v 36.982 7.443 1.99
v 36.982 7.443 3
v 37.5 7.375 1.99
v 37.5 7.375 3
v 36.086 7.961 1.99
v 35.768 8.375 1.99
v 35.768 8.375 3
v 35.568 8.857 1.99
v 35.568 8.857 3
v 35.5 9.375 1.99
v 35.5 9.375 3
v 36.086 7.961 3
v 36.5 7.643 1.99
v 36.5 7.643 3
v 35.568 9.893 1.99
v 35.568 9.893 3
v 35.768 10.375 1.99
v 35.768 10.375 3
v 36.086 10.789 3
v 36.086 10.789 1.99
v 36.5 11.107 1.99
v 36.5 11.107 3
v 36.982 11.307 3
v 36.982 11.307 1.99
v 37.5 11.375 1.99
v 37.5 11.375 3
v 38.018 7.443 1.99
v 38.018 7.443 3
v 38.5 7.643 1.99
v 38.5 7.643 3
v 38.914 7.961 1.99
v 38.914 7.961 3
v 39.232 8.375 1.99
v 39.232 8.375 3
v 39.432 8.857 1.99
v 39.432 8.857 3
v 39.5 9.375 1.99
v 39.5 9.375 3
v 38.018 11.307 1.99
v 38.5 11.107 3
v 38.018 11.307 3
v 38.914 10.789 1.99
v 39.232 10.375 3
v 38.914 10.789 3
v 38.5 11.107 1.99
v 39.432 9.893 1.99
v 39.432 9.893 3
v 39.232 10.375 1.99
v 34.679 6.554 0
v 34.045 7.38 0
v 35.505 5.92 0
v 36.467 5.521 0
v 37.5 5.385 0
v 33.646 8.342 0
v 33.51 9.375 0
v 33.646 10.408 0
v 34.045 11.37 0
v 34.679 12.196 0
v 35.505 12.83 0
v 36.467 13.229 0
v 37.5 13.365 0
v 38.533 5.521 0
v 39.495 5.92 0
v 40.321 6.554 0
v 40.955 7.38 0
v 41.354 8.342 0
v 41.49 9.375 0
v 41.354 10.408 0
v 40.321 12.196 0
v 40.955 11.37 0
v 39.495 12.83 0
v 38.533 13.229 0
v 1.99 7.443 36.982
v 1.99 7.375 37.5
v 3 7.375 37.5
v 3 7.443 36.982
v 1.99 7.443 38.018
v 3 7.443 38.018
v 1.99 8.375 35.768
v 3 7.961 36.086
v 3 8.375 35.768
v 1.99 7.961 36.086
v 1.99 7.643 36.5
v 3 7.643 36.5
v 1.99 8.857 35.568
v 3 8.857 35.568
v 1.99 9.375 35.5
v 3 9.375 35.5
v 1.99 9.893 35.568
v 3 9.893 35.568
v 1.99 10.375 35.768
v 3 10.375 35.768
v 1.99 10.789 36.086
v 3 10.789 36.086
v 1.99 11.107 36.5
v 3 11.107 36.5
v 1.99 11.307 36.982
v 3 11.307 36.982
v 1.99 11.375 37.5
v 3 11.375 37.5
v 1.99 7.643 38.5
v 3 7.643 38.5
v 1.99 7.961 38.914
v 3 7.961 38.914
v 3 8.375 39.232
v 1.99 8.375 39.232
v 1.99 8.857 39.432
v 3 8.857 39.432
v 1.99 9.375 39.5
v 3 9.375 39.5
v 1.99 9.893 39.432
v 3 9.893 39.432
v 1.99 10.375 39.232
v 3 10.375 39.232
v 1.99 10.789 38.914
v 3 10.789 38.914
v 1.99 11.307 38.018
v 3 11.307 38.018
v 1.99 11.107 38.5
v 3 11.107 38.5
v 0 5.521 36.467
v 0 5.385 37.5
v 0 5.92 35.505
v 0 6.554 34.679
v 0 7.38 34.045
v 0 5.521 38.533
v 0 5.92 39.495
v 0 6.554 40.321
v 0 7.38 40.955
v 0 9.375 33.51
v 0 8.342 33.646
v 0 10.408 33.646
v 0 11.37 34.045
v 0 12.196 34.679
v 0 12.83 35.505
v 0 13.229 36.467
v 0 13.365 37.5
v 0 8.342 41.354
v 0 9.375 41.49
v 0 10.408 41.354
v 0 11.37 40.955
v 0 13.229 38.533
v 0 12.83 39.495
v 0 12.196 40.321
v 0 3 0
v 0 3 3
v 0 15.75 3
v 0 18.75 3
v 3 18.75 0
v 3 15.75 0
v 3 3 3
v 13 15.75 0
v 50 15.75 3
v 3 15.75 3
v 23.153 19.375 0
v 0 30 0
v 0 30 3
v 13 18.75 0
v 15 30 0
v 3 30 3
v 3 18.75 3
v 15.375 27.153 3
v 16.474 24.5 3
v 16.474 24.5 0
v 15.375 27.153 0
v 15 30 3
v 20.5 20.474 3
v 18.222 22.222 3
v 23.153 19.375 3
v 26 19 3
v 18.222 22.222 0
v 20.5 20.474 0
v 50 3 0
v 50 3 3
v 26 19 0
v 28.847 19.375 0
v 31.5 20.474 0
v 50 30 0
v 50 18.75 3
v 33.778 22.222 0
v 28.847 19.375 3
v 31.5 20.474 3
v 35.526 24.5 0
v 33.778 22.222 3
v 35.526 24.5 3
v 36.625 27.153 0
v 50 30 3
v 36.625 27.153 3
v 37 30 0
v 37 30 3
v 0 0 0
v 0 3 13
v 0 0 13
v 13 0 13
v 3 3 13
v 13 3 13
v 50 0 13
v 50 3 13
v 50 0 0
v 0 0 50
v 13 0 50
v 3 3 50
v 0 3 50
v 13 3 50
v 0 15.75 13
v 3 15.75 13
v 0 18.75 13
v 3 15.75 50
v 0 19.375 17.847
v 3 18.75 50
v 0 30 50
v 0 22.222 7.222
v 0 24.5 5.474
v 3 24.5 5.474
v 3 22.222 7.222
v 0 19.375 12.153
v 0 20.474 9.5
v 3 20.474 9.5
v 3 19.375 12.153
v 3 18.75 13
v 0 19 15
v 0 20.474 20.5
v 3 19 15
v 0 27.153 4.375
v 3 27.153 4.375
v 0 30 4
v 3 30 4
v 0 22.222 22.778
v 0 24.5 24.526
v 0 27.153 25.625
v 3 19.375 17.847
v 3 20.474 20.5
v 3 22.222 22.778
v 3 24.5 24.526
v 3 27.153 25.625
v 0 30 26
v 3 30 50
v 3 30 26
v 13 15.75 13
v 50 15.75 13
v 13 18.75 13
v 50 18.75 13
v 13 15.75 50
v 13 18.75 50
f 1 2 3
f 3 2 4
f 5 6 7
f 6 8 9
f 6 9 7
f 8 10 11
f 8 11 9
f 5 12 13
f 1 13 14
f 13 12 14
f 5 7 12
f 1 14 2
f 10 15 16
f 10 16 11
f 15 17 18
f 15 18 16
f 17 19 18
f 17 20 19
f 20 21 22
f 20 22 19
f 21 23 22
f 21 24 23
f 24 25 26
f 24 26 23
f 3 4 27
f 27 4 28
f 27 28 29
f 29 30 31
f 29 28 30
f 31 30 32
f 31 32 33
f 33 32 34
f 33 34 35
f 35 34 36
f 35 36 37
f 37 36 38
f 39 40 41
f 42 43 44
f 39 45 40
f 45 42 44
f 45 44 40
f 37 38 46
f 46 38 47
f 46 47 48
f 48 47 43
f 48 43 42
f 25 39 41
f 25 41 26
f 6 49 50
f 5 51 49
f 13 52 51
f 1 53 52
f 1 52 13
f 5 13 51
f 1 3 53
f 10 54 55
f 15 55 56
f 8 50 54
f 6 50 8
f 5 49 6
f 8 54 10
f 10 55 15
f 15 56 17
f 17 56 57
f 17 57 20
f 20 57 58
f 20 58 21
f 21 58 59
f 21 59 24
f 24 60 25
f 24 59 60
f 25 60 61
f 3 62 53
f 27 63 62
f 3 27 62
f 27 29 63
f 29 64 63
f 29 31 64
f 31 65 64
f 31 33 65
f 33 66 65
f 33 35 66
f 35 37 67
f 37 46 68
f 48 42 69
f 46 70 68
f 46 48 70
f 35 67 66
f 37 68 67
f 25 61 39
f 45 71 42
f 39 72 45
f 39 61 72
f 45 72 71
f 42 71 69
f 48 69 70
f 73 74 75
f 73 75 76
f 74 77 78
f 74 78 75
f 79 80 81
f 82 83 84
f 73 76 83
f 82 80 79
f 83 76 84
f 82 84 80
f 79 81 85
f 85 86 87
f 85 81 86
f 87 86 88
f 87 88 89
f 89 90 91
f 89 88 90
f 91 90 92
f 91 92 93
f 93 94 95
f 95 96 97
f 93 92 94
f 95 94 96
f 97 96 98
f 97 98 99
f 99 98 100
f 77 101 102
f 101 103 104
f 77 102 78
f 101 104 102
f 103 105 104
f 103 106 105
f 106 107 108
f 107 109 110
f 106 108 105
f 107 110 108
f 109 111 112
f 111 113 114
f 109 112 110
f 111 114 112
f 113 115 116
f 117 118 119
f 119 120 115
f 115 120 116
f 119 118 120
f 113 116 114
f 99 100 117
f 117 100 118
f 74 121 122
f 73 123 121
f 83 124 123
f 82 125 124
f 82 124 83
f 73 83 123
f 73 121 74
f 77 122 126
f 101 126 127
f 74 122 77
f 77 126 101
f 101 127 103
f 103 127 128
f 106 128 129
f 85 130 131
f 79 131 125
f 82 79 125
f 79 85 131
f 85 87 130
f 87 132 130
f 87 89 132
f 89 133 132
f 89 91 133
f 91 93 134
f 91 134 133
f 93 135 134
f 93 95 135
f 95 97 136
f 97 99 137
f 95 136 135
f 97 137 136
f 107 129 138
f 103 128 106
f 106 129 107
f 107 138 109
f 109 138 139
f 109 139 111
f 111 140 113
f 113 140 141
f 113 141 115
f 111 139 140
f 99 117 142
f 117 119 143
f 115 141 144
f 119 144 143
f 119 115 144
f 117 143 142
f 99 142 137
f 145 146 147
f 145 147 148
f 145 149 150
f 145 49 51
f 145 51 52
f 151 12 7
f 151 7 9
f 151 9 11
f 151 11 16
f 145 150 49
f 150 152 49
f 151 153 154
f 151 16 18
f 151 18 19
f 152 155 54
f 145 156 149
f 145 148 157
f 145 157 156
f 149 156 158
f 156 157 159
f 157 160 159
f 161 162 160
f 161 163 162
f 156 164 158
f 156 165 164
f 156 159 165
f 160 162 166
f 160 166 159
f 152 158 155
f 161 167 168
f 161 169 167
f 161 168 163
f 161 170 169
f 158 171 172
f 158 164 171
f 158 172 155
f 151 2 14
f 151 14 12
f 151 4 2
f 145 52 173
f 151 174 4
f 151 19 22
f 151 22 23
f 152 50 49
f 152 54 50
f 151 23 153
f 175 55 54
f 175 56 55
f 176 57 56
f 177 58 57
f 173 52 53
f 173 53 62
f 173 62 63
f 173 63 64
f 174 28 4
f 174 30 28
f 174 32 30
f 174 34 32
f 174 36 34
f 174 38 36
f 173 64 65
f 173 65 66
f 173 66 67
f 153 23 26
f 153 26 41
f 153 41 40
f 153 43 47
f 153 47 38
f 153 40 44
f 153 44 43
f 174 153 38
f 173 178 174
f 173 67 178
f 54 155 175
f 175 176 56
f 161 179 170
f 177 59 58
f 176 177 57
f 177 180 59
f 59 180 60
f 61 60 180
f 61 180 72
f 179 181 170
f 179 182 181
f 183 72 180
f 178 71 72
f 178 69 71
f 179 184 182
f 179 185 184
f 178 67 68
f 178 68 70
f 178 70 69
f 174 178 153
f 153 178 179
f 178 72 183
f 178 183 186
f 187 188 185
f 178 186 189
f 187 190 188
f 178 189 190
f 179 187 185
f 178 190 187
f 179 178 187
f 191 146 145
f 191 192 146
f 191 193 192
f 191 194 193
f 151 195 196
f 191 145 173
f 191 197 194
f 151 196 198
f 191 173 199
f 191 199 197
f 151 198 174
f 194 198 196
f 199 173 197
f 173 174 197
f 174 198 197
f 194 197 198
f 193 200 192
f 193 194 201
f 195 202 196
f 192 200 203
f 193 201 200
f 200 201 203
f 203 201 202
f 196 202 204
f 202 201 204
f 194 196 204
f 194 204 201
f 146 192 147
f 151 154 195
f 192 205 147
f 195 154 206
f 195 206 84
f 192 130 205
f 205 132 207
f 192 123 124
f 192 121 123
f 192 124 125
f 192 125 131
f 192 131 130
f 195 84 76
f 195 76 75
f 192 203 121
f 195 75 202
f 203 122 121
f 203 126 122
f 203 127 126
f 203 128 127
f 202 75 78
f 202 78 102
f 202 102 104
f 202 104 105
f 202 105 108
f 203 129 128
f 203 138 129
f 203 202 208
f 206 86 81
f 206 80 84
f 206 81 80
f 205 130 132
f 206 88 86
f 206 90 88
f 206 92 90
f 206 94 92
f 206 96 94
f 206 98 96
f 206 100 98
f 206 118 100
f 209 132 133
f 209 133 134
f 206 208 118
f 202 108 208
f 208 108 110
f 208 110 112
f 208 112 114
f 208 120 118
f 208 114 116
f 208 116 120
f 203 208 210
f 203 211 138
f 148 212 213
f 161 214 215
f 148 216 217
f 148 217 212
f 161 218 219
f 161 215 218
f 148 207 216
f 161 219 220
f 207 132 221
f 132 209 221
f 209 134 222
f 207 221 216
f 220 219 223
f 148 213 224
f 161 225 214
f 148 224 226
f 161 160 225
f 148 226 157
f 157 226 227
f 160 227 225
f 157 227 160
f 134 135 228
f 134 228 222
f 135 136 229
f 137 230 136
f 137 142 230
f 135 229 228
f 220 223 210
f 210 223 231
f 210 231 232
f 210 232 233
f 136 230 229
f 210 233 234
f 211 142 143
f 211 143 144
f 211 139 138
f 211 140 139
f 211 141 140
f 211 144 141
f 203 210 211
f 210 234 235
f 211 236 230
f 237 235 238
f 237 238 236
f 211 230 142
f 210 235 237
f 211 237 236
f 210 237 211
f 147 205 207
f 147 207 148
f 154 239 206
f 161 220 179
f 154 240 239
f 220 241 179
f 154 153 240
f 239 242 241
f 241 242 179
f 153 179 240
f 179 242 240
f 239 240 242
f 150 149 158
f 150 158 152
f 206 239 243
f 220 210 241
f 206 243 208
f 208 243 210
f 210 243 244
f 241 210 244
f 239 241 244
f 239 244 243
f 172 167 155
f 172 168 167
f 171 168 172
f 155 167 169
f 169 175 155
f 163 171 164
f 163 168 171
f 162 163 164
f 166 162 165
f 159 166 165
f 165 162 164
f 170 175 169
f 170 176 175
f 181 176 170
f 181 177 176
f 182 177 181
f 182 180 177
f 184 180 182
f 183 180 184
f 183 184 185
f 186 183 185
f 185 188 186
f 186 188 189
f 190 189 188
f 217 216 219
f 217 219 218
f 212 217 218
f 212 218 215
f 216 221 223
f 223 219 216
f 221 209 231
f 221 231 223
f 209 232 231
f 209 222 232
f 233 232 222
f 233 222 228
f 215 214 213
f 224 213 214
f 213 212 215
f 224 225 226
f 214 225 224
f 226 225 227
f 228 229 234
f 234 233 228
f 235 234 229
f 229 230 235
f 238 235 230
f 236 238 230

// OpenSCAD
$fn=24;
t = 3;
l = 50;
h = 30;
s = 12.75; // shelf thickness (want this snug)
lip = 10; // how far under shelf lip should extend

// Draw the basic corner part
module part1() {
    cube([l, h, t]);
    cube([l, t, t+lip]);
    cube([t+lip, t, l]);
    cube([t, h, l]);

    // Under shelf parts
    translate([0, t+s, t]) {
        cube([l, t, lip]);
    }
    translate([t, t+s, 0]) {
        cube([lip, t, l]);
    }
}


difference() {
    part1();
    // Add a couple nail/screw holes
    translate([l*3/4, t + s/2, -0.01]) {
        cylinder(h=t+1, r=2);
        cylinder(h=2, r1=4, r2=2);
    }
    translate([-0.01, t+s/2, l*3/4])
        rotate([0, 90, 0]) {
            cylinder(h=t+1, r=2);
            cylinder(h=2, r1=4, r2=2);
        }

    // Cut out holes for rack screws
    a=20+t;
    ar=11;
    translate([t+a, h, -0.01])
        cylinder(h=t+1, r=ar);
    translate([-0.01, h, t+12])
        rotate([0,90,0])
        cylinder(h=t+1, r=ar);
}
